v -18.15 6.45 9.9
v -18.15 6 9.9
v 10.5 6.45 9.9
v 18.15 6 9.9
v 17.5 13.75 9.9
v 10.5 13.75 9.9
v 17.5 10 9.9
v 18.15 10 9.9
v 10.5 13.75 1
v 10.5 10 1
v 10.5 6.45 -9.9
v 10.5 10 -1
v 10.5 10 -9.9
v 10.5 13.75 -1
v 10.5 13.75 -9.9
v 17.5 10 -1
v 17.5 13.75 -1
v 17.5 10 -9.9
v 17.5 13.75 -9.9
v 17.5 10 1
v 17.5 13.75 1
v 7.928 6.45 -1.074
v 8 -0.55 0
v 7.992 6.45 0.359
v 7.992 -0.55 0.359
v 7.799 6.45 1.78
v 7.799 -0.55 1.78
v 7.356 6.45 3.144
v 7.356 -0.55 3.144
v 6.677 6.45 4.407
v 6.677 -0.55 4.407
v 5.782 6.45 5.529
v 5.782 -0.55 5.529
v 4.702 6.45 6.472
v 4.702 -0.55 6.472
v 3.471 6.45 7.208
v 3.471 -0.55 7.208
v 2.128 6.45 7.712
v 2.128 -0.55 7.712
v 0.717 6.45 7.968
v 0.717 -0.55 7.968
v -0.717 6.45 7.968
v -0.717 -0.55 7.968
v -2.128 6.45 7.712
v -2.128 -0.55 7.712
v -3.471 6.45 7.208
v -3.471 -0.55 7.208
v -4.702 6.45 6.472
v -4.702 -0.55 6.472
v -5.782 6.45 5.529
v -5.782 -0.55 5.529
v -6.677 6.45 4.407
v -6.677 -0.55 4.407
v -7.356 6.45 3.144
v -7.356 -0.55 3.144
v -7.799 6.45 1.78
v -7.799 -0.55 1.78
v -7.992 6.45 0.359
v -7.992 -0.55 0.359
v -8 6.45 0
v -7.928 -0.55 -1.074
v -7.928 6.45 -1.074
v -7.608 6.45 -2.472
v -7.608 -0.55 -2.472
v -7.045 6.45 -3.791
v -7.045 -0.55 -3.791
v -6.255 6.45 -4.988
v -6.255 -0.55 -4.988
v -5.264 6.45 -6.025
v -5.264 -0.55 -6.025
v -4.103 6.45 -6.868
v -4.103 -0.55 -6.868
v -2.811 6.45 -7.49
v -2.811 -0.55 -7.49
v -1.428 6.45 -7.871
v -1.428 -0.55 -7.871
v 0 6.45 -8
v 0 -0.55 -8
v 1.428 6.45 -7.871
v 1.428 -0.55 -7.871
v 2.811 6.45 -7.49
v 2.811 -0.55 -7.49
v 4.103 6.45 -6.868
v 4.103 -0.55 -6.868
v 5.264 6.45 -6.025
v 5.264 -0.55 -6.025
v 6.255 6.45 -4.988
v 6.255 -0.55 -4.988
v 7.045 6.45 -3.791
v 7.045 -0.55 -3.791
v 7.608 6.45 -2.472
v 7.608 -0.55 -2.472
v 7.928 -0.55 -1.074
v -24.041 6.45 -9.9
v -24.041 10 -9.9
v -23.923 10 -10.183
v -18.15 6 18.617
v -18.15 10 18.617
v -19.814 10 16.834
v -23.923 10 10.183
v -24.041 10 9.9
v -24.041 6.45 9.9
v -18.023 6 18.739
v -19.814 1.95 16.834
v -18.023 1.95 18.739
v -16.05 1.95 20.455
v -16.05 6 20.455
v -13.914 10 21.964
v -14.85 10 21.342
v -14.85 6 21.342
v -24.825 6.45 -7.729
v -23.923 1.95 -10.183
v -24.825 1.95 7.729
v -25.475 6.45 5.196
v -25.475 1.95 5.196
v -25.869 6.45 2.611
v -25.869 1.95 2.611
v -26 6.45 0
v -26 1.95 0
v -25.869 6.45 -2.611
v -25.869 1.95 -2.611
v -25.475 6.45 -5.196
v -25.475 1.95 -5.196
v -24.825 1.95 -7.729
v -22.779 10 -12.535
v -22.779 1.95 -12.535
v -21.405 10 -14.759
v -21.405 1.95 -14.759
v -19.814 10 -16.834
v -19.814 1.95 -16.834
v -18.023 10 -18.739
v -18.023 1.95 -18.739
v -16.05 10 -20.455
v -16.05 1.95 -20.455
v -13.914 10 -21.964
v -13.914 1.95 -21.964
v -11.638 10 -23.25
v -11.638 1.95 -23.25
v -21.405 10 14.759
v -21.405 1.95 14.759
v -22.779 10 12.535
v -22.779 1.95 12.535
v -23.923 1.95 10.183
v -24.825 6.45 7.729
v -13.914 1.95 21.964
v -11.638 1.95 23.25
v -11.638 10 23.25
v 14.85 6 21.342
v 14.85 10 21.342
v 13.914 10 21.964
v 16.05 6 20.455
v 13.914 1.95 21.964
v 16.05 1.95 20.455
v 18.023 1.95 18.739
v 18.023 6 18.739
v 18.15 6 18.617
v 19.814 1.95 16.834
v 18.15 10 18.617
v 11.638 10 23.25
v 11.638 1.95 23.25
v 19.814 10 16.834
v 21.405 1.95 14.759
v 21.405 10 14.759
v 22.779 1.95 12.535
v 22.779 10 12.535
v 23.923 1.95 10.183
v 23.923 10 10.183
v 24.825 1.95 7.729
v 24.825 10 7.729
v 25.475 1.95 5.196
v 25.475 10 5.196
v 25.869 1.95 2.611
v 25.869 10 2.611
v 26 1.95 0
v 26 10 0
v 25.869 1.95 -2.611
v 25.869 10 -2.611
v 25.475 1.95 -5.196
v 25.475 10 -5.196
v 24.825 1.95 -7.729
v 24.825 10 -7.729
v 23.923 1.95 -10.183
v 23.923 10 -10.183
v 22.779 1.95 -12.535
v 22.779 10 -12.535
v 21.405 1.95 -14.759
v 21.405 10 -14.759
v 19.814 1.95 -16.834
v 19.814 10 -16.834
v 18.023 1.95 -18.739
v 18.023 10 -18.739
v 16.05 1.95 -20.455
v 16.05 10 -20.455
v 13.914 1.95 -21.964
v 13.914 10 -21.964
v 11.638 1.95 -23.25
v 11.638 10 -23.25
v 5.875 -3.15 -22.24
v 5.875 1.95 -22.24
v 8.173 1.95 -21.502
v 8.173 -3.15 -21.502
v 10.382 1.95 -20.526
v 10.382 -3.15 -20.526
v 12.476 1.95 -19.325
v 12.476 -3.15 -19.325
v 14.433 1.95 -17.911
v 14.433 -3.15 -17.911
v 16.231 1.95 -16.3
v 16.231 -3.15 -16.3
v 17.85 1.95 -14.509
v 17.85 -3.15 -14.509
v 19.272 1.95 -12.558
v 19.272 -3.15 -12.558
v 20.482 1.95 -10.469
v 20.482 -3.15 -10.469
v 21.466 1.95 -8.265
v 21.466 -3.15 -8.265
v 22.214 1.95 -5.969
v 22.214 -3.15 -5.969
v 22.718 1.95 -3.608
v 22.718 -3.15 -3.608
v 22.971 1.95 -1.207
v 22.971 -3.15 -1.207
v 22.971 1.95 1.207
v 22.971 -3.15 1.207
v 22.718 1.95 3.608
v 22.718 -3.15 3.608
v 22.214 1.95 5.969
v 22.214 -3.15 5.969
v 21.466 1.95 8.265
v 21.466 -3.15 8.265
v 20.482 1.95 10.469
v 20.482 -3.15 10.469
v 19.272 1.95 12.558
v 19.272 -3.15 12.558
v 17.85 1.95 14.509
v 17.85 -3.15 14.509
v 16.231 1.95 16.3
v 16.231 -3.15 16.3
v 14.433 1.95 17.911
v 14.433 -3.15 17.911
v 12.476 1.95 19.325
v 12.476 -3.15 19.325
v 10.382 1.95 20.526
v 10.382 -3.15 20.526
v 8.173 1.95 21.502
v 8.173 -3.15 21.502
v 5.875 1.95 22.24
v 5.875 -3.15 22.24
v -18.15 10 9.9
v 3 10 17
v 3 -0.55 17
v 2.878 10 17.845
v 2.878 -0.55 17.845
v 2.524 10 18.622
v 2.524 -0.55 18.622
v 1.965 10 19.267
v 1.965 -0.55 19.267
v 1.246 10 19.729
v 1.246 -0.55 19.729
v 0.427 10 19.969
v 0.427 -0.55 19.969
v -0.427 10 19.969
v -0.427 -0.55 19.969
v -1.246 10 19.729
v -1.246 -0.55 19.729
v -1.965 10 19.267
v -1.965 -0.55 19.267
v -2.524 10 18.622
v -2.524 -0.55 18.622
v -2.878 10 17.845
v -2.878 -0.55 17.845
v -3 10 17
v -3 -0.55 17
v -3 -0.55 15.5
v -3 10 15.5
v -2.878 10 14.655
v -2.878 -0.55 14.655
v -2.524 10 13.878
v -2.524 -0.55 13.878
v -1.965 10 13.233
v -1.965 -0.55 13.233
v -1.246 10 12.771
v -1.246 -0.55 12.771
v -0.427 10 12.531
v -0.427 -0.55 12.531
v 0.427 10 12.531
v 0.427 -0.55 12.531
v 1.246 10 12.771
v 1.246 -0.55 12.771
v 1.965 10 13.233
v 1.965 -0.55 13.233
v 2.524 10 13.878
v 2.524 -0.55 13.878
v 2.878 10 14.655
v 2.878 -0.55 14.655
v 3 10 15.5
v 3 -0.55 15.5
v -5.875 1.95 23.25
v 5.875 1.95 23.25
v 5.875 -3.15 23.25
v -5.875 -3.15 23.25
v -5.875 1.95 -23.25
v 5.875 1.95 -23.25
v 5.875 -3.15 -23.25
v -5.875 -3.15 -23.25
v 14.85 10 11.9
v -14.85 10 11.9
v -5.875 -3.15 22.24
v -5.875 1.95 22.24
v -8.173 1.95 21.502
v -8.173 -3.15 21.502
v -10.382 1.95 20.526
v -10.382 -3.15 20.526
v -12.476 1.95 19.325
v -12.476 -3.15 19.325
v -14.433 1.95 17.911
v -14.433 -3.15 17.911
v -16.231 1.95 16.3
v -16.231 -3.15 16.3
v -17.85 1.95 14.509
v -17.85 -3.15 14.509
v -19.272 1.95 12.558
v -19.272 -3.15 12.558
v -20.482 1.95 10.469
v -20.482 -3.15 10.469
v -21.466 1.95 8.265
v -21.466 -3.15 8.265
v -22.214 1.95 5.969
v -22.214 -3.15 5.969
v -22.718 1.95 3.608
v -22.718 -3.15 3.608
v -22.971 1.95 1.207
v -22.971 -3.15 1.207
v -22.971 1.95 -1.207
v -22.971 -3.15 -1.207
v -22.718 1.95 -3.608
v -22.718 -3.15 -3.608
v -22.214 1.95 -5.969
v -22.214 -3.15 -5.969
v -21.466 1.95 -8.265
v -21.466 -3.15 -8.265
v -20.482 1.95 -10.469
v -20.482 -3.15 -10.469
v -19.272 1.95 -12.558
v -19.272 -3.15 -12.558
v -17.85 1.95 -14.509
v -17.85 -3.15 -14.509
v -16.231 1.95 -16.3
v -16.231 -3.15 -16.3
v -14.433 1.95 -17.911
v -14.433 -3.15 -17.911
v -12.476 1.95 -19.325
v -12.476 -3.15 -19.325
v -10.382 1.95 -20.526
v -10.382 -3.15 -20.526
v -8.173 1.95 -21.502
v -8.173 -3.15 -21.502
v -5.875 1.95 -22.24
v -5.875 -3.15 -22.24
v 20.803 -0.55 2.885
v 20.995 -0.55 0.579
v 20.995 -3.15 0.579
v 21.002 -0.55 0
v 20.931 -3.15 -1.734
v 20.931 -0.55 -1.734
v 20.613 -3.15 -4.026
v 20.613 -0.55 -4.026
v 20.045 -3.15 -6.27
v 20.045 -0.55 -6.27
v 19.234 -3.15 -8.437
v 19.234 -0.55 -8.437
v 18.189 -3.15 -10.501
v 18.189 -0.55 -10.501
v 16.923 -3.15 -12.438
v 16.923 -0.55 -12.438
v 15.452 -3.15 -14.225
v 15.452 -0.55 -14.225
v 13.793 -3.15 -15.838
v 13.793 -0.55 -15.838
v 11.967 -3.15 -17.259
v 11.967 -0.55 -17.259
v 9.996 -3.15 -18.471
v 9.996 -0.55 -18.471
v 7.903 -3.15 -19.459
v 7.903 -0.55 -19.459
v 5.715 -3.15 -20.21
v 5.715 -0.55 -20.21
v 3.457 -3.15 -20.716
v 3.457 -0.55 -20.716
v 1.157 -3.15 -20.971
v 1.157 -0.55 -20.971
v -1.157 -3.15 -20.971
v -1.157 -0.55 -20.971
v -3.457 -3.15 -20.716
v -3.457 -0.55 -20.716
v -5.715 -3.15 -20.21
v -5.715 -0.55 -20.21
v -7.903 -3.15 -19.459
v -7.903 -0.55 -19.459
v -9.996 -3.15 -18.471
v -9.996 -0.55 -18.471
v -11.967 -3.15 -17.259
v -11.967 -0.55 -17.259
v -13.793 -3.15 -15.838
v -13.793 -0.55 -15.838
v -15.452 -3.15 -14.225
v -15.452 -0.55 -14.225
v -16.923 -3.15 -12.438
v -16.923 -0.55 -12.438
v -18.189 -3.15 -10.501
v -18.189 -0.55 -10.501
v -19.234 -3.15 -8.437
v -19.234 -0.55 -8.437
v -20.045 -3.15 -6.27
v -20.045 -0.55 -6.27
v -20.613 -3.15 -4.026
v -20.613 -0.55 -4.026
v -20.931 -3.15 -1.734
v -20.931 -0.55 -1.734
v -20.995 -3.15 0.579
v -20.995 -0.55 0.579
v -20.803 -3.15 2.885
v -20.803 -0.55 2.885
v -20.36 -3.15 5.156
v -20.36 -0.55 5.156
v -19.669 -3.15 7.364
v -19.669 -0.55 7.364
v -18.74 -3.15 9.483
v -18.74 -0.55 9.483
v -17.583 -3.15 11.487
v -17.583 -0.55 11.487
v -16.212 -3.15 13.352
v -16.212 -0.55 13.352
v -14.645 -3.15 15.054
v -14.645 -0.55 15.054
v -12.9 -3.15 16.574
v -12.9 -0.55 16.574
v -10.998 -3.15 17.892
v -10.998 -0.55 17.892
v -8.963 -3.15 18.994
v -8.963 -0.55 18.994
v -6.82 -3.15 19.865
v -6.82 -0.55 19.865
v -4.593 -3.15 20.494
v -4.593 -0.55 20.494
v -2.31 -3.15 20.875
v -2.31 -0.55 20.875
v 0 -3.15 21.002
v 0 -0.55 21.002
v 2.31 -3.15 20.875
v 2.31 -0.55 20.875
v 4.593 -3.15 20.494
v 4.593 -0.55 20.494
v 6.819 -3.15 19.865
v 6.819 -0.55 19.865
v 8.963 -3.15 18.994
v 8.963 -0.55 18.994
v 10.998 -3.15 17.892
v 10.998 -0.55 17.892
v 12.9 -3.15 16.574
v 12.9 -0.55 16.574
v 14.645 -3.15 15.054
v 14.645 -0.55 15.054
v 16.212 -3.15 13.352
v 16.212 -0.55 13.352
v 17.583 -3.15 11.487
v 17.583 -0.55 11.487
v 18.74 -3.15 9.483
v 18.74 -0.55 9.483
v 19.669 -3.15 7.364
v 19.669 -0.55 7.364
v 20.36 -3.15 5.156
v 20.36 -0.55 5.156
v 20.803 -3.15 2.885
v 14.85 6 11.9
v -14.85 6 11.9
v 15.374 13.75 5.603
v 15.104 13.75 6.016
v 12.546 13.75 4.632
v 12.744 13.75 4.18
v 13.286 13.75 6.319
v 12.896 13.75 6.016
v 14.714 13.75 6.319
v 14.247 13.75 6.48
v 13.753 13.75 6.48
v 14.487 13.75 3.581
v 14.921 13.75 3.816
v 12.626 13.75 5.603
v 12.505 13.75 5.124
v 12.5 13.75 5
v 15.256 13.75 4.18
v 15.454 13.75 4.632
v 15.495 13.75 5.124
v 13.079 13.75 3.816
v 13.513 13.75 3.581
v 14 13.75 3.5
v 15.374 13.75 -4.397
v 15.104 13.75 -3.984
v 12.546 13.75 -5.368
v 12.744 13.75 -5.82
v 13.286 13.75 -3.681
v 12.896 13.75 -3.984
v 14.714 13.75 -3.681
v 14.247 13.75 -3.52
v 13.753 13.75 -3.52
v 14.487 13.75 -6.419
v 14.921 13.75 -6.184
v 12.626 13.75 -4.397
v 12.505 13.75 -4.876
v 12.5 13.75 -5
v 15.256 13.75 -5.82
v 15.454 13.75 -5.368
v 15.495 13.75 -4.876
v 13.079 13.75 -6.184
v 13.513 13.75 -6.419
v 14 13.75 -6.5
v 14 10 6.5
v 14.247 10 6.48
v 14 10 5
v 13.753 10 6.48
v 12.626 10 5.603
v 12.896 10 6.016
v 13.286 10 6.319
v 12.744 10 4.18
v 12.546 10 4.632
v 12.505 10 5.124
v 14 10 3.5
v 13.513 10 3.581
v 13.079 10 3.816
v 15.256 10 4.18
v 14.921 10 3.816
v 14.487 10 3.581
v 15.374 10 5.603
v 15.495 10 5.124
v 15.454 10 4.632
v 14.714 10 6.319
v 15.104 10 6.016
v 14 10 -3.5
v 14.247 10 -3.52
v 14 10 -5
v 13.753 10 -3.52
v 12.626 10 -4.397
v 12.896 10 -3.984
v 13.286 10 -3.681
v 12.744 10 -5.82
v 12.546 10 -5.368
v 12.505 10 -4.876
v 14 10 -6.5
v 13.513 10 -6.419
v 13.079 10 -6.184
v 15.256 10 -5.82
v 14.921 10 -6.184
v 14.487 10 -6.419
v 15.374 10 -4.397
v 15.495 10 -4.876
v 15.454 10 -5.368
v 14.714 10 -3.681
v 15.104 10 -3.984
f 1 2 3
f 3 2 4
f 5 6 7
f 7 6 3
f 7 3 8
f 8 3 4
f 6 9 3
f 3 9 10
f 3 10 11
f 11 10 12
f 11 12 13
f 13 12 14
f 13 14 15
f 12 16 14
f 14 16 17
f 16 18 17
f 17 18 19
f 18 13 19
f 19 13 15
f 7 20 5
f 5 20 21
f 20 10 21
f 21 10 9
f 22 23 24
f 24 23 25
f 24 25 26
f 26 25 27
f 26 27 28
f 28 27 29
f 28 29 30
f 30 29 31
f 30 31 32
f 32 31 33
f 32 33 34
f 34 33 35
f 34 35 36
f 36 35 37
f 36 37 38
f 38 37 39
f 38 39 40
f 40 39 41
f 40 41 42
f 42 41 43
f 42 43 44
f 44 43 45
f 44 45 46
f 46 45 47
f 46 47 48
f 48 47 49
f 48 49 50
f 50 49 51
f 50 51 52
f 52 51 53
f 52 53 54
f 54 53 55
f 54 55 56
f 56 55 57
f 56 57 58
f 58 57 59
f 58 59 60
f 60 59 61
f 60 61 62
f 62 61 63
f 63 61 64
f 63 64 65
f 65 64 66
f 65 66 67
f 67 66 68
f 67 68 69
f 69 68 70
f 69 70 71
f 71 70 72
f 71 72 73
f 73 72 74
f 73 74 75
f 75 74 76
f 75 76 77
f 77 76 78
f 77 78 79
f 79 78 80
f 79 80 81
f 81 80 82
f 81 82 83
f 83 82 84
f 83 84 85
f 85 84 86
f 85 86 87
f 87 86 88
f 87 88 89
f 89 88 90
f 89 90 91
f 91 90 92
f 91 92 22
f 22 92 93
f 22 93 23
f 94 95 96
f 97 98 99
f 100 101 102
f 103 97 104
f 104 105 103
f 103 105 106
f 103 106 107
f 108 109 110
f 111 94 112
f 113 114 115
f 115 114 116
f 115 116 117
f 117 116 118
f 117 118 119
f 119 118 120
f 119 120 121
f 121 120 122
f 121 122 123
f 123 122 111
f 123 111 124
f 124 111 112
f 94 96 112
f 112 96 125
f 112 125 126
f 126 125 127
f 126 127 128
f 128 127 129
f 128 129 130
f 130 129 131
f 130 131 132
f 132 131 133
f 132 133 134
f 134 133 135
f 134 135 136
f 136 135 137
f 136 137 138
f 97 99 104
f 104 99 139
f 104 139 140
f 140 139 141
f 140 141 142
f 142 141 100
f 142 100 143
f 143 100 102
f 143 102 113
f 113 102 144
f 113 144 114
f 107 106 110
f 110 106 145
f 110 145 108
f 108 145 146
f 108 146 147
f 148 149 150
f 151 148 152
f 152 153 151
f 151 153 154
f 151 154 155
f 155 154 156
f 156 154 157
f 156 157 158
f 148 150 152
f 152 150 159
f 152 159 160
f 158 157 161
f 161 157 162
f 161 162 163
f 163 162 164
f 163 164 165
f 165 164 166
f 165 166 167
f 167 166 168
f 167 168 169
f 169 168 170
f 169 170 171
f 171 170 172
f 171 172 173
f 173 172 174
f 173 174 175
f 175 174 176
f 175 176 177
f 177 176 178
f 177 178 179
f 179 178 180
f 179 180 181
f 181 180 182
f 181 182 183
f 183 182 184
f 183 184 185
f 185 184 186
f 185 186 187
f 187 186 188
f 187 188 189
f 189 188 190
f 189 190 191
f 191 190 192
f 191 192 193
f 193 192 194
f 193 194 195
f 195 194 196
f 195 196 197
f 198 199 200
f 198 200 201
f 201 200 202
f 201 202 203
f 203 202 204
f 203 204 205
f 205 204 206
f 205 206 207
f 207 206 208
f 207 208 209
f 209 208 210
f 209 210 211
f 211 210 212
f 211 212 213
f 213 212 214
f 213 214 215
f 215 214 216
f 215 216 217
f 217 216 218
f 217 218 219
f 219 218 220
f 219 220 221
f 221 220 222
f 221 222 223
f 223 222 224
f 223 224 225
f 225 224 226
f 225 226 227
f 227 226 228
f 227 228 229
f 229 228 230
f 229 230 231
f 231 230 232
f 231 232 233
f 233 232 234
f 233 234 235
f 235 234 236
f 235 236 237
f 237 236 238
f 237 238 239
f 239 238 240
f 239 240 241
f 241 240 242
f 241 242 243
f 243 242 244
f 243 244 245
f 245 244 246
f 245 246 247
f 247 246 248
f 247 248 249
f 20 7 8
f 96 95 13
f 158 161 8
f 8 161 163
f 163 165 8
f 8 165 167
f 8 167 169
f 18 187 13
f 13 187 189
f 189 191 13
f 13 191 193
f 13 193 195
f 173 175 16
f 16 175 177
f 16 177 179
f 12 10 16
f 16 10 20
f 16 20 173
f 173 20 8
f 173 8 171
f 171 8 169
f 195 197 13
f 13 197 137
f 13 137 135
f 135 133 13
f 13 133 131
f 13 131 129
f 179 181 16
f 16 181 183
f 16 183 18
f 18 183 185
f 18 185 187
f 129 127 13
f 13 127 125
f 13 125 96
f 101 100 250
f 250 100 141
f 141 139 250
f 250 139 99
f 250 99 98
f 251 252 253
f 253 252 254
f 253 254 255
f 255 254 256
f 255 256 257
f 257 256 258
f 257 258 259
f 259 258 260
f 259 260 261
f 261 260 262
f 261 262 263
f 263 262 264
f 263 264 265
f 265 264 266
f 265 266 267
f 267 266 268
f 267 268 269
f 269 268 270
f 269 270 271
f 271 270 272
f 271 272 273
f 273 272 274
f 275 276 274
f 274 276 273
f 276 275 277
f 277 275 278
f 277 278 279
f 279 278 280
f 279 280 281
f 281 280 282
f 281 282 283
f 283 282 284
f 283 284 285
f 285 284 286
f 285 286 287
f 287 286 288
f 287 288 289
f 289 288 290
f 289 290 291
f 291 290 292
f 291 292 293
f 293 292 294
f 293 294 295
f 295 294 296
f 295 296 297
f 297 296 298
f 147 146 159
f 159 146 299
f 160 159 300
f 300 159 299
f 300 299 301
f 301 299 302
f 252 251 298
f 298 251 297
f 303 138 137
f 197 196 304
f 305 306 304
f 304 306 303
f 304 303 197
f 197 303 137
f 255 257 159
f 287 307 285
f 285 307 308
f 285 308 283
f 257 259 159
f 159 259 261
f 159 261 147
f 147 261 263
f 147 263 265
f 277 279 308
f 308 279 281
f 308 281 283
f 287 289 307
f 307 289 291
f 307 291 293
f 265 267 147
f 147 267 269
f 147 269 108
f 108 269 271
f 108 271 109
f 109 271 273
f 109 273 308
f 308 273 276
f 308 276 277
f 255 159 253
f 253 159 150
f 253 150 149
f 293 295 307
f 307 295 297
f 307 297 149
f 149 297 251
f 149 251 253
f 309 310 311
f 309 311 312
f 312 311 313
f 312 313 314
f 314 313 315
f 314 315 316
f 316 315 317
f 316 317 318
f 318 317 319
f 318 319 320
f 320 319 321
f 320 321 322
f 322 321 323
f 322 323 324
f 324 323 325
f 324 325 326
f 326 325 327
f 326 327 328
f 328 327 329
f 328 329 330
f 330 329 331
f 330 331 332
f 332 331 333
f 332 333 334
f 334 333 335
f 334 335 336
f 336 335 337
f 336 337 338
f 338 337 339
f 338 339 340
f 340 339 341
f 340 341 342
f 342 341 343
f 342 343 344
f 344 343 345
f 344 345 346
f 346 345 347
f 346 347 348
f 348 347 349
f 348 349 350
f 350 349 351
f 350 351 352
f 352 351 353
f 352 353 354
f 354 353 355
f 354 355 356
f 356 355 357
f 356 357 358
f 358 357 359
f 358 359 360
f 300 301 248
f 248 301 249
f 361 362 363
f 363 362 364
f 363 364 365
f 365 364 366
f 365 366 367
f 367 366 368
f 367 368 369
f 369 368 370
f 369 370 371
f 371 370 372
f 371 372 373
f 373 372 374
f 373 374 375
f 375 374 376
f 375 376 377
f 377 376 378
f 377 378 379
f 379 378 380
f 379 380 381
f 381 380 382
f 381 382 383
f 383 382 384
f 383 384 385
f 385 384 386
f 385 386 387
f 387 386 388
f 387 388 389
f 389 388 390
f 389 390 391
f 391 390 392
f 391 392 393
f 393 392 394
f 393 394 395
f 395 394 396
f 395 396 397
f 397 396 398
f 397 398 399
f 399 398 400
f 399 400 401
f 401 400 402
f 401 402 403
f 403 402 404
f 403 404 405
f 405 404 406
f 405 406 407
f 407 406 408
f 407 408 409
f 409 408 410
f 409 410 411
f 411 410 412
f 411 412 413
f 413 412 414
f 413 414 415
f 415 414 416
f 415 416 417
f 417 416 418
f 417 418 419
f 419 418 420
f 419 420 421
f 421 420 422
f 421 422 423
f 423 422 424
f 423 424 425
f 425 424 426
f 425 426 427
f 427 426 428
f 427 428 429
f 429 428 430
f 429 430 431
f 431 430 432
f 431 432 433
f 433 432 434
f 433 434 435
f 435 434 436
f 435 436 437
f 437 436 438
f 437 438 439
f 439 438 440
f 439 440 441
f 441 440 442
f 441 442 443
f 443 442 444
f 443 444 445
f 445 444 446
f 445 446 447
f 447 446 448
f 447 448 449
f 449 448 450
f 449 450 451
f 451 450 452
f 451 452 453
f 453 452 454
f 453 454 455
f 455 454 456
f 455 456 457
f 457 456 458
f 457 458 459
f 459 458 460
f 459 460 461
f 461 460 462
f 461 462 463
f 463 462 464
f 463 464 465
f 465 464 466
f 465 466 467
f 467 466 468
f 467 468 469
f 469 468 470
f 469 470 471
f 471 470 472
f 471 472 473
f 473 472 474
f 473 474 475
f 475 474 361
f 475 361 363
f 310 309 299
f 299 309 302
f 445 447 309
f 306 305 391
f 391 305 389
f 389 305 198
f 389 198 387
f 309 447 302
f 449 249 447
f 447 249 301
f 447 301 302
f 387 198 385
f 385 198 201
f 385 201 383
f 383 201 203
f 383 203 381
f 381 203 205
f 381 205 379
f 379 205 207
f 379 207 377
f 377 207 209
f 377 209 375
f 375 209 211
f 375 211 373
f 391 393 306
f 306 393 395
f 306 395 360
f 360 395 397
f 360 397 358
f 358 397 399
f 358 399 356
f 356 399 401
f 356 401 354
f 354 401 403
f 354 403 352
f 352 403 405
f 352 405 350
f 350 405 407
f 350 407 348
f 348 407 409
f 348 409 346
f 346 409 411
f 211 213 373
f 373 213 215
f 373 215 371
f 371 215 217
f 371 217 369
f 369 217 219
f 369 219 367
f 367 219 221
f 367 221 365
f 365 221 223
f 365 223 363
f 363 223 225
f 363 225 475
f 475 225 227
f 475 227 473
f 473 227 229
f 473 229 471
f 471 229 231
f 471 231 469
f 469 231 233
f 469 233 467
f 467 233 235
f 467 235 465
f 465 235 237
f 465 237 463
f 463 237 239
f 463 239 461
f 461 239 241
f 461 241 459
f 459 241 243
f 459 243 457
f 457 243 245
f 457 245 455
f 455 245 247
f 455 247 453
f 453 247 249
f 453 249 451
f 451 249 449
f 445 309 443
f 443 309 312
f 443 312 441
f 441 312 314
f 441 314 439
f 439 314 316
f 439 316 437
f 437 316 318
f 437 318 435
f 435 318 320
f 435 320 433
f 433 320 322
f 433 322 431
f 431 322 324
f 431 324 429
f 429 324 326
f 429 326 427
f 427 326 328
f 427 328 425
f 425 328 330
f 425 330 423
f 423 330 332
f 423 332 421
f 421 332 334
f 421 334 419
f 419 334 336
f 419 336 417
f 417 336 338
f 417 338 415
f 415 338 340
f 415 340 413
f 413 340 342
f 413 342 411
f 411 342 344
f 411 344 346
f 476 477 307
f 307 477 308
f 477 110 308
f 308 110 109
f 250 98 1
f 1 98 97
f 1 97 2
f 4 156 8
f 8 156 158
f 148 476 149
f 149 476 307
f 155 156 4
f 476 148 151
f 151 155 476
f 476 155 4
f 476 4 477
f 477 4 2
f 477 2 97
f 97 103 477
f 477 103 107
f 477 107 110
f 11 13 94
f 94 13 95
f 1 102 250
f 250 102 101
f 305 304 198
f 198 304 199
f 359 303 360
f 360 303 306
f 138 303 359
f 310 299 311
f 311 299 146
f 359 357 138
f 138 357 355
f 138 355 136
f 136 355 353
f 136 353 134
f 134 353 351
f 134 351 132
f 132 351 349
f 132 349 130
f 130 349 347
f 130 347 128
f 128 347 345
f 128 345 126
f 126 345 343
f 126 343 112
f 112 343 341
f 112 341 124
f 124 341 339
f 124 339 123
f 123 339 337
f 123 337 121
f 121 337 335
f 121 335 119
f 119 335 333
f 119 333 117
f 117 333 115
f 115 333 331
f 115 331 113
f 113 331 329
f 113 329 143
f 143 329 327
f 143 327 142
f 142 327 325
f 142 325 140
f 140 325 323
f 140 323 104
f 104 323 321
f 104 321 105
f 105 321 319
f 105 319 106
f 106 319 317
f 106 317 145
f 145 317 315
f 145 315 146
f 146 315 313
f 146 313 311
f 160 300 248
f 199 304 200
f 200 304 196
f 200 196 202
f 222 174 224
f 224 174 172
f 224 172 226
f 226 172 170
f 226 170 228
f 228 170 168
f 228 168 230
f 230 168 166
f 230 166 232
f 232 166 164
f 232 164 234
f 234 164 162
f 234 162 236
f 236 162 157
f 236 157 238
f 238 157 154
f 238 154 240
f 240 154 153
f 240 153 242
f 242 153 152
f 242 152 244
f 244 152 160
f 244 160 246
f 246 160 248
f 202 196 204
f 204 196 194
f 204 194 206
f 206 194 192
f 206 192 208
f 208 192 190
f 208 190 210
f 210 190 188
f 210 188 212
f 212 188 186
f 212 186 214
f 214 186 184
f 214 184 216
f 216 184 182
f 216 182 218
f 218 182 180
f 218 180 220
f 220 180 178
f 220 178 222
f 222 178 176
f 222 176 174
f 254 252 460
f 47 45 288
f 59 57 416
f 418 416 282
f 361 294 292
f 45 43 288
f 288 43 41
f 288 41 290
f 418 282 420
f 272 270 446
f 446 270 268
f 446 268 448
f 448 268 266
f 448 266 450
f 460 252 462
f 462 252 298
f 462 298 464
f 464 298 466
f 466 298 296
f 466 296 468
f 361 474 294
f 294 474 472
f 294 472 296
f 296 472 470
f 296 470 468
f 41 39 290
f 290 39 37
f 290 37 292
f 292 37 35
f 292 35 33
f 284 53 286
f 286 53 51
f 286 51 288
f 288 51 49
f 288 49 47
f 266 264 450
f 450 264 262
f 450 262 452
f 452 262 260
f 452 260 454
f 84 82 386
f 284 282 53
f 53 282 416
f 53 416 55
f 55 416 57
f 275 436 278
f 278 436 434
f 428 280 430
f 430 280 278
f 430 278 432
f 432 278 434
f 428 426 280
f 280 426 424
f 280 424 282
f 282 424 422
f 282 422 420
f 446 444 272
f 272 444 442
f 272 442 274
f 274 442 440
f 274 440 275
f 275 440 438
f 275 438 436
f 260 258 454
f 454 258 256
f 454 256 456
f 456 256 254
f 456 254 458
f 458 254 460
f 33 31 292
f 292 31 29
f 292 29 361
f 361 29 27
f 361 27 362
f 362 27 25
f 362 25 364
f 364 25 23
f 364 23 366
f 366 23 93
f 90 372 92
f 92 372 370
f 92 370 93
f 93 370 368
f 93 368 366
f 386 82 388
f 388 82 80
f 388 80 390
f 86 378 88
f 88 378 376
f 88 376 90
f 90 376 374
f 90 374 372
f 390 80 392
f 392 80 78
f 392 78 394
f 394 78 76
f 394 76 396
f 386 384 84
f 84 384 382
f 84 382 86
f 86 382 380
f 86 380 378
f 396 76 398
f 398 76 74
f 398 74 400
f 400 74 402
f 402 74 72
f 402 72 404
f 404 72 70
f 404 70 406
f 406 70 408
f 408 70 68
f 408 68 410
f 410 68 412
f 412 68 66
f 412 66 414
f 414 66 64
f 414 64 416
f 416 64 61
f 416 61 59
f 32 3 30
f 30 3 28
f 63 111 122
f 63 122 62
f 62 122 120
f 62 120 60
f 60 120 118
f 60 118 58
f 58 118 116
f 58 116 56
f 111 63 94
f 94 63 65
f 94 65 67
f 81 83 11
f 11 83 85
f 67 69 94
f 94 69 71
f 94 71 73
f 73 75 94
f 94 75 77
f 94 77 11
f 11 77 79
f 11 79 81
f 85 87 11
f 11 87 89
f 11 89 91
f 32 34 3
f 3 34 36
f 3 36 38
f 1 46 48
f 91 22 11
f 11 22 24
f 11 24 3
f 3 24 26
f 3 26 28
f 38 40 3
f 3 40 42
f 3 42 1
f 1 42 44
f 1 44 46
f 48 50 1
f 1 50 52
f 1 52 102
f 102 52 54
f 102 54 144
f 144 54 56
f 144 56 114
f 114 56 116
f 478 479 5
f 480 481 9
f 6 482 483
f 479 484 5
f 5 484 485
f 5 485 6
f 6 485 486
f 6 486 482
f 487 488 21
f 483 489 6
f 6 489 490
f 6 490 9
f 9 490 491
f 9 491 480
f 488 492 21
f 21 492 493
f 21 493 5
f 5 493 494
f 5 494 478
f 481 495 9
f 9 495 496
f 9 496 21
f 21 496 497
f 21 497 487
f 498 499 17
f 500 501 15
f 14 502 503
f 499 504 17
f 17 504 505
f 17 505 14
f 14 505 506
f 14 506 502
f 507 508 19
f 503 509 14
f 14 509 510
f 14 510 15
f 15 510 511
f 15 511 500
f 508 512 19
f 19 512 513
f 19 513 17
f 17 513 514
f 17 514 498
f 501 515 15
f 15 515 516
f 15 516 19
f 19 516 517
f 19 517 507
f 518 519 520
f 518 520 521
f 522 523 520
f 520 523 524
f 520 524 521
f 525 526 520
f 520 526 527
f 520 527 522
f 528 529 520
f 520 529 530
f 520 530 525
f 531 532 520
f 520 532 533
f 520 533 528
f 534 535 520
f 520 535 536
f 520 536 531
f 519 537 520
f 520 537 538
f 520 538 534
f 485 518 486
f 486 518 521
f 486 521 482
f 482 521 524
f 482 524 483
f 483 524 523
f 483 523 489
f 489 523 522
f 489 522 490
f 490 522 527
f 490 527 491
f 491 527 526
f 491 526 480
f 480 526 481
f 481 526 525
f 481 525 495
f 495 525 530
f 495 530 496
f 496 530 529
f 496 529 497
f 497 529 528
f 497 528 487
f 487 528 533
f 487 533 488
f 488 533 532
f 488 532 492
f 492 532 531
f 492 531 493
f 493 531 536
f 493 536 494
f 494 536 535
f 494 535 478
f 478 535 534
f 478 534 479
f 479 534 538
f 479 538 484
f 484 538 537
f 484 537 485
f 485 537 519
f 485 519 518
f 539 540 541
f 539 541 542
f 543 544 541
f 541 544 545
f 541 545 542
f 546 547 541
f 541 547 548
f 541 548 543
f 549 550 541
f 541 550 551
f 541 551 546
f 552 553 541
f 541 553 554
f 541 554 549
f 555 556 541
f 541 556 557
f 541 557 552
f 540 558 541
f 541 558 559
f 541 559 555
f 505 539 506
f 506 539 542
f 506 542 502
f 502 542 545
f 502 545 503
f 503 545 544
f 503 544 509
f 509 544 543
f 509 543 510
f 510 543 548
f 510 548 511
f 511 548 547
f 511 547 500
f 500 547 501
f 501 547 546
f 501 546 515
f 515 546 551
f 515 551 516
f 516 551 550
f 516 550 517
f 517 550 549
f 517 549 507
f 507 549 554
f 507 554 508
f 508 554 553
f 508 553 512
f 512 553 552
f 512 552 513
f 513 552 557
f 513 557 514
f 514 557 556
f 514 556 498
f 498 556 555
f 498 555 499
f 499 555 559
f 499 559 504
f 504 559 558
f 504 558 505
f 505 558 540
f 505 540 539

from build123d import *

# Parameters (mm, degrees)
SKETCH1_R           = 8
BOSS_EXTRUDE1_DEPTH = 10
SKETCH1_3_R         = 21.0025
BOSS_EXTRUDE2_DEPTH = 3.15
CUT_EXTRUDE1_DEPTH  = 4
SKETCH3_W           = 36.5
SKETCH3_H           = 19.8
CUT_EXTRUDE2_DEPTH  = 3
SKETCH4_W           = 7
SKETCH4_H           = 8.9
SKETCH4_R           = 1.375
BOSS_EXTRUDE3_DEPTH = 4.3
BOSS_EXTRUDE4_DEPTH = 3.15
CUT_EXTRUDE4_DEPTH  = 1.95
SKETCH9_R           = 21.0025
SKETCH9_R_2         = 8
BOSS_EXTRUDE8_DEPTH = 0.55
SKETCH10_R          = 8
CUT_EXTRUDE5_DEPTH  = 0.55
SKETCH11_W          = 7
SKETCH11_H          = 8.9
SKETCH11_R          = 1.375
CUT_EXTRUDE6_DEPTH  = 0.55


with BuildPart() as part:
    # Sketch1 → Boss-Extrude1 (new body)
    with BuildSketch(Plane(origin=(0, 0, 0), x_dir=(1, 0, 0), z_dir=(0, 1, 0))):
        with BuildLine():
            ThreePointArc((-11.637761812, 23.25), (-26, 0), (-11.637761812, -23.25))
            Line((-11.637761812, -23.25), (11.637761812, -23.25))
            ThreePointArc((11.637761812, -23.25), (26, 0), (11.637761812, 23.25))
            Line((11.637761812, 23.25), (-11.637761812, 23.25))
        make_face()
        Circle(SKETCH1_R, mode=Mode.SUBTRACT)
        with BuildLine():
            ThreePointArc((-3, -15.5), (0, -12.5), (3, -15.5))
            Line((3, -15.5), (3, -17))
            ThreePointArc((3, -17), (0, -20), (-3, -17))
            Line((-3, -17), (-3, -15.5))
        make_face(mode=Mode.SUBTRACT)
    extrude(amount=BOSS_EXTRUDE1_DEPTH)

    # Sketch1_3 → Boss-Extrude2 (add)
    with BuildSketch(Plane(origin=(0, 0, 0), x_dir=(1, 0, 0), z_dir=(0, 1, 0))):
        with BuildLine():
            Line((-5.874521255, -22.239716866), (-5.874521255, -23.25))
            Line((-5.874521255, -23.25), (5.874521255, -23.25))
            Line((5.874521255, -23.25), (5.874521255, -22.239716866))
            ThreePointArc((5.874521255, -22.239716866), (0, 23.0025), (-5.874521255, -22.239716866))
        make_face()
        Circle(SKETCH1_3_R, mode=Mode.SUBTRACT)
    extrude(amount=-BOSS_EXTRUDE2_DEPTH)

    # Sketch2 → Cut-Extrude1 (cut)
    with BuildSketch(Plane(origin=(0, 10, 0), x_dir=(1, 0, 0), z_dir=(0, 1, 0))):
        with BuildLine():
            Line((-18.15, -9.9), (-18.15, -18.616592062))
            ThreePointArc((-18.15, -18.616592062), (-16.556172611, -20.047272844), (-14.85, -21.341918845))
            Line((-14.85, -21.341918845), (-14.85, -11.9))
            Line((-14.85, -11.9), (14.85, -11.9))
            Line((14.85, -11.9), (14.85, -21.341918845))
            ThreePointArc((14.85, -21.341918845), (16.556172611, -20.047272844), (18.15, -18.616592062))
            Line((18.15, -18.616592062), (18.15, -9.9))
            Line((18.15, -9.9), (-18.15, -9.9))
        make_face()
    extrude(amount=-CUT_EXTRUDE1_DEPTH, mode=Mode.SUBTRACT)

    # Sketch3 → Cut-Extrude2 (cut)
    with BuildSketch(Plane(origin=(0, 10, 0), x_dir=(1, 0, 0), z_dir=(0, 1, 0))):
        with Locations((-7.75, 0)):
            Rectangle(SKETCH3_W, SKETCH3_H)
    extrude(amount=-CUT_EXTRUDE2_DEPTH, mode=Mode.SUBTRACT)

    # Sketch4 → Boss-Extrude3 (add)
    with BuildSketch(Plane(origin=(0, 10, 0), x_dir=(1, 0, 0), z_dir=(0, 1, 0))):
        with Locations((14, 5.45)):
            Rectangle(SKETCH4_W, SKETCH4_H)
        with Locations((14, 5)):
            Circle(SKETCH4_R, mode=Mode.SUBTRACT)
        with Locations((14, -5.45)):
            Rectangle(SKETCH4_W, SKETCH4_H)
        with Locations((14, -5)):
            Circle(SKETCH4_R, mode=Mode.SUBTRACT)
    extrude(amount=BOSS_EXTRUDE3_DEPTH)

    # Sketch6 → Boss-Extrude4 (add)
    with BuildSketch(Plane.XZ):
        with BuildLine():
            Line((-5.874521255, -23.25), (5.874521255, -23.25))
            Line((5.874521255, -23.25), (5.874521255, -22.239716866))
            ThreePointArc((5.874521255, -22.239716866), (0, -23.0025), (-5.874521255, -22.239716866))
            Line((-5.874521255, -22.239716866), (-5.874521255, -23.25))
        make_face()
    extrude(amount=BOSS_EXTRUDE4_DEPTH)

    # Sketch8 → Cut-Extrude4 (cut)
    with BuildSketch(Plane.XZ):
        with BuildLine():
            Line((-11.637761812, -23.25), (-5.874521255, -23.25))
            Line((-5.874521255, -23.25), (-5.874521255, -22.239716866))
            ThreePointArc((-5.874521255, -22.239716866), (-23.0025, 0), (-5.874521255, 22.239716866))
            Line((-5.874521255, 22.239716866), (-5.874521255, 23.25))
            Line((-5.874521255, 23.25), (-11.637761812, 23.25))
            ThreePointArc((-11.637761812, 23.25), (-26, 0), (-11.637761812, -23.25))
        make_face()
        with BuildLine():
            Line((5.874521255, 23.25), (5.874521255, 22.239716866))
            ThreePointArc((5.874521255, 22.239716866), (23.0025, 0), (5.874521255, -22.239716866))
            Line((5.874521255, -22.239716866), (5.874521255, -23.25))
            Line((5.874521255, -23.25), (11.637761812, -23.25))
            ThreePointArc((11.637761812, -23.25), (26, 0), (11.637761812, 23.25))
            Line((11.637761812, 23.25), (5.874521255, 23.25))
        make_face()
    extrude(amount=-CUT_EXTRUDE4_DEPTH, mode=Mode.SUBTRACT)

    # Sketch9 → Boss-Extrude8 (add)
    with BuildSketch(Plane.XZ):
        Circle(SKETCH9_R)
        Circle(SKETCH9_R_2, mode=Mode.SUBTRACT)
        with BuildLine():
            Line((-3, 15.5), (-3, 17))
            ThreePointArc((-3, 17), (0, 20), (3, 17))
            Line((3, 17), (3, 15.5))
            ThreePointArc((3, 15.5), (0, 12.5), (-3, 15.5))
        make_face(mode=Mode.SUBTRACT)
    extrude(amount=BOSS_EXTRUDE8_DEPTH)

    # Sketch10 → Cut-Extrude5 (cut)
    with BuildSketch(Plane(origin=(0, 7, 0), x_dir=(1, 0, 0), z_dir=(0, 1, 0))):
        with BuildLine():
            Line((-24.041422587, -9.9), (-18.15, -9.9))
            Line((-18.15, -9.9), (10.5, -9.9))
            Line((10.5, -9.9), (10.5, 9.9))
            Line((10.5, 9.9), (-24.041422587, 9.9))
            ThreePointArc((-24.041422587, 9.9), (-26, 0), (-24.041422587, -9.9))
        make_face()
        Circle(SKETCH10_R, mode=Mode.SUBTRACT)
    extrude(amount=-CUT_EXTRUDE5_DEPTH, mode=Mode.SUBTRACT)

    # Sketch11 → Cut-Extrude6 (cut)
    with BuildSketch(Plane(origin=(0, 14.3, 0), x_dir=(1, 0, 0), z_dir=(0, 1, 0))):
        with Locations((14, -5.45)):
            Rectangle(SKETCH11_W, SKETCH11_H)
        with Locations((14, -5)):
            Circle(SKETCH11_R, mode=Mode.SUBTRACT)
        with Locations((14, 5.45)):
            Rectangle(SKETCH11_W, SKETCH11_H)
        with Locations((14, 5)):
            Circle(SKETCH11_R, mode=Mode.SUBTRACT)
    extrude(amount=-CUT_EXTRUDE6_DEPTH, mode=Mode.SUBTRACT)


solid = part.part
